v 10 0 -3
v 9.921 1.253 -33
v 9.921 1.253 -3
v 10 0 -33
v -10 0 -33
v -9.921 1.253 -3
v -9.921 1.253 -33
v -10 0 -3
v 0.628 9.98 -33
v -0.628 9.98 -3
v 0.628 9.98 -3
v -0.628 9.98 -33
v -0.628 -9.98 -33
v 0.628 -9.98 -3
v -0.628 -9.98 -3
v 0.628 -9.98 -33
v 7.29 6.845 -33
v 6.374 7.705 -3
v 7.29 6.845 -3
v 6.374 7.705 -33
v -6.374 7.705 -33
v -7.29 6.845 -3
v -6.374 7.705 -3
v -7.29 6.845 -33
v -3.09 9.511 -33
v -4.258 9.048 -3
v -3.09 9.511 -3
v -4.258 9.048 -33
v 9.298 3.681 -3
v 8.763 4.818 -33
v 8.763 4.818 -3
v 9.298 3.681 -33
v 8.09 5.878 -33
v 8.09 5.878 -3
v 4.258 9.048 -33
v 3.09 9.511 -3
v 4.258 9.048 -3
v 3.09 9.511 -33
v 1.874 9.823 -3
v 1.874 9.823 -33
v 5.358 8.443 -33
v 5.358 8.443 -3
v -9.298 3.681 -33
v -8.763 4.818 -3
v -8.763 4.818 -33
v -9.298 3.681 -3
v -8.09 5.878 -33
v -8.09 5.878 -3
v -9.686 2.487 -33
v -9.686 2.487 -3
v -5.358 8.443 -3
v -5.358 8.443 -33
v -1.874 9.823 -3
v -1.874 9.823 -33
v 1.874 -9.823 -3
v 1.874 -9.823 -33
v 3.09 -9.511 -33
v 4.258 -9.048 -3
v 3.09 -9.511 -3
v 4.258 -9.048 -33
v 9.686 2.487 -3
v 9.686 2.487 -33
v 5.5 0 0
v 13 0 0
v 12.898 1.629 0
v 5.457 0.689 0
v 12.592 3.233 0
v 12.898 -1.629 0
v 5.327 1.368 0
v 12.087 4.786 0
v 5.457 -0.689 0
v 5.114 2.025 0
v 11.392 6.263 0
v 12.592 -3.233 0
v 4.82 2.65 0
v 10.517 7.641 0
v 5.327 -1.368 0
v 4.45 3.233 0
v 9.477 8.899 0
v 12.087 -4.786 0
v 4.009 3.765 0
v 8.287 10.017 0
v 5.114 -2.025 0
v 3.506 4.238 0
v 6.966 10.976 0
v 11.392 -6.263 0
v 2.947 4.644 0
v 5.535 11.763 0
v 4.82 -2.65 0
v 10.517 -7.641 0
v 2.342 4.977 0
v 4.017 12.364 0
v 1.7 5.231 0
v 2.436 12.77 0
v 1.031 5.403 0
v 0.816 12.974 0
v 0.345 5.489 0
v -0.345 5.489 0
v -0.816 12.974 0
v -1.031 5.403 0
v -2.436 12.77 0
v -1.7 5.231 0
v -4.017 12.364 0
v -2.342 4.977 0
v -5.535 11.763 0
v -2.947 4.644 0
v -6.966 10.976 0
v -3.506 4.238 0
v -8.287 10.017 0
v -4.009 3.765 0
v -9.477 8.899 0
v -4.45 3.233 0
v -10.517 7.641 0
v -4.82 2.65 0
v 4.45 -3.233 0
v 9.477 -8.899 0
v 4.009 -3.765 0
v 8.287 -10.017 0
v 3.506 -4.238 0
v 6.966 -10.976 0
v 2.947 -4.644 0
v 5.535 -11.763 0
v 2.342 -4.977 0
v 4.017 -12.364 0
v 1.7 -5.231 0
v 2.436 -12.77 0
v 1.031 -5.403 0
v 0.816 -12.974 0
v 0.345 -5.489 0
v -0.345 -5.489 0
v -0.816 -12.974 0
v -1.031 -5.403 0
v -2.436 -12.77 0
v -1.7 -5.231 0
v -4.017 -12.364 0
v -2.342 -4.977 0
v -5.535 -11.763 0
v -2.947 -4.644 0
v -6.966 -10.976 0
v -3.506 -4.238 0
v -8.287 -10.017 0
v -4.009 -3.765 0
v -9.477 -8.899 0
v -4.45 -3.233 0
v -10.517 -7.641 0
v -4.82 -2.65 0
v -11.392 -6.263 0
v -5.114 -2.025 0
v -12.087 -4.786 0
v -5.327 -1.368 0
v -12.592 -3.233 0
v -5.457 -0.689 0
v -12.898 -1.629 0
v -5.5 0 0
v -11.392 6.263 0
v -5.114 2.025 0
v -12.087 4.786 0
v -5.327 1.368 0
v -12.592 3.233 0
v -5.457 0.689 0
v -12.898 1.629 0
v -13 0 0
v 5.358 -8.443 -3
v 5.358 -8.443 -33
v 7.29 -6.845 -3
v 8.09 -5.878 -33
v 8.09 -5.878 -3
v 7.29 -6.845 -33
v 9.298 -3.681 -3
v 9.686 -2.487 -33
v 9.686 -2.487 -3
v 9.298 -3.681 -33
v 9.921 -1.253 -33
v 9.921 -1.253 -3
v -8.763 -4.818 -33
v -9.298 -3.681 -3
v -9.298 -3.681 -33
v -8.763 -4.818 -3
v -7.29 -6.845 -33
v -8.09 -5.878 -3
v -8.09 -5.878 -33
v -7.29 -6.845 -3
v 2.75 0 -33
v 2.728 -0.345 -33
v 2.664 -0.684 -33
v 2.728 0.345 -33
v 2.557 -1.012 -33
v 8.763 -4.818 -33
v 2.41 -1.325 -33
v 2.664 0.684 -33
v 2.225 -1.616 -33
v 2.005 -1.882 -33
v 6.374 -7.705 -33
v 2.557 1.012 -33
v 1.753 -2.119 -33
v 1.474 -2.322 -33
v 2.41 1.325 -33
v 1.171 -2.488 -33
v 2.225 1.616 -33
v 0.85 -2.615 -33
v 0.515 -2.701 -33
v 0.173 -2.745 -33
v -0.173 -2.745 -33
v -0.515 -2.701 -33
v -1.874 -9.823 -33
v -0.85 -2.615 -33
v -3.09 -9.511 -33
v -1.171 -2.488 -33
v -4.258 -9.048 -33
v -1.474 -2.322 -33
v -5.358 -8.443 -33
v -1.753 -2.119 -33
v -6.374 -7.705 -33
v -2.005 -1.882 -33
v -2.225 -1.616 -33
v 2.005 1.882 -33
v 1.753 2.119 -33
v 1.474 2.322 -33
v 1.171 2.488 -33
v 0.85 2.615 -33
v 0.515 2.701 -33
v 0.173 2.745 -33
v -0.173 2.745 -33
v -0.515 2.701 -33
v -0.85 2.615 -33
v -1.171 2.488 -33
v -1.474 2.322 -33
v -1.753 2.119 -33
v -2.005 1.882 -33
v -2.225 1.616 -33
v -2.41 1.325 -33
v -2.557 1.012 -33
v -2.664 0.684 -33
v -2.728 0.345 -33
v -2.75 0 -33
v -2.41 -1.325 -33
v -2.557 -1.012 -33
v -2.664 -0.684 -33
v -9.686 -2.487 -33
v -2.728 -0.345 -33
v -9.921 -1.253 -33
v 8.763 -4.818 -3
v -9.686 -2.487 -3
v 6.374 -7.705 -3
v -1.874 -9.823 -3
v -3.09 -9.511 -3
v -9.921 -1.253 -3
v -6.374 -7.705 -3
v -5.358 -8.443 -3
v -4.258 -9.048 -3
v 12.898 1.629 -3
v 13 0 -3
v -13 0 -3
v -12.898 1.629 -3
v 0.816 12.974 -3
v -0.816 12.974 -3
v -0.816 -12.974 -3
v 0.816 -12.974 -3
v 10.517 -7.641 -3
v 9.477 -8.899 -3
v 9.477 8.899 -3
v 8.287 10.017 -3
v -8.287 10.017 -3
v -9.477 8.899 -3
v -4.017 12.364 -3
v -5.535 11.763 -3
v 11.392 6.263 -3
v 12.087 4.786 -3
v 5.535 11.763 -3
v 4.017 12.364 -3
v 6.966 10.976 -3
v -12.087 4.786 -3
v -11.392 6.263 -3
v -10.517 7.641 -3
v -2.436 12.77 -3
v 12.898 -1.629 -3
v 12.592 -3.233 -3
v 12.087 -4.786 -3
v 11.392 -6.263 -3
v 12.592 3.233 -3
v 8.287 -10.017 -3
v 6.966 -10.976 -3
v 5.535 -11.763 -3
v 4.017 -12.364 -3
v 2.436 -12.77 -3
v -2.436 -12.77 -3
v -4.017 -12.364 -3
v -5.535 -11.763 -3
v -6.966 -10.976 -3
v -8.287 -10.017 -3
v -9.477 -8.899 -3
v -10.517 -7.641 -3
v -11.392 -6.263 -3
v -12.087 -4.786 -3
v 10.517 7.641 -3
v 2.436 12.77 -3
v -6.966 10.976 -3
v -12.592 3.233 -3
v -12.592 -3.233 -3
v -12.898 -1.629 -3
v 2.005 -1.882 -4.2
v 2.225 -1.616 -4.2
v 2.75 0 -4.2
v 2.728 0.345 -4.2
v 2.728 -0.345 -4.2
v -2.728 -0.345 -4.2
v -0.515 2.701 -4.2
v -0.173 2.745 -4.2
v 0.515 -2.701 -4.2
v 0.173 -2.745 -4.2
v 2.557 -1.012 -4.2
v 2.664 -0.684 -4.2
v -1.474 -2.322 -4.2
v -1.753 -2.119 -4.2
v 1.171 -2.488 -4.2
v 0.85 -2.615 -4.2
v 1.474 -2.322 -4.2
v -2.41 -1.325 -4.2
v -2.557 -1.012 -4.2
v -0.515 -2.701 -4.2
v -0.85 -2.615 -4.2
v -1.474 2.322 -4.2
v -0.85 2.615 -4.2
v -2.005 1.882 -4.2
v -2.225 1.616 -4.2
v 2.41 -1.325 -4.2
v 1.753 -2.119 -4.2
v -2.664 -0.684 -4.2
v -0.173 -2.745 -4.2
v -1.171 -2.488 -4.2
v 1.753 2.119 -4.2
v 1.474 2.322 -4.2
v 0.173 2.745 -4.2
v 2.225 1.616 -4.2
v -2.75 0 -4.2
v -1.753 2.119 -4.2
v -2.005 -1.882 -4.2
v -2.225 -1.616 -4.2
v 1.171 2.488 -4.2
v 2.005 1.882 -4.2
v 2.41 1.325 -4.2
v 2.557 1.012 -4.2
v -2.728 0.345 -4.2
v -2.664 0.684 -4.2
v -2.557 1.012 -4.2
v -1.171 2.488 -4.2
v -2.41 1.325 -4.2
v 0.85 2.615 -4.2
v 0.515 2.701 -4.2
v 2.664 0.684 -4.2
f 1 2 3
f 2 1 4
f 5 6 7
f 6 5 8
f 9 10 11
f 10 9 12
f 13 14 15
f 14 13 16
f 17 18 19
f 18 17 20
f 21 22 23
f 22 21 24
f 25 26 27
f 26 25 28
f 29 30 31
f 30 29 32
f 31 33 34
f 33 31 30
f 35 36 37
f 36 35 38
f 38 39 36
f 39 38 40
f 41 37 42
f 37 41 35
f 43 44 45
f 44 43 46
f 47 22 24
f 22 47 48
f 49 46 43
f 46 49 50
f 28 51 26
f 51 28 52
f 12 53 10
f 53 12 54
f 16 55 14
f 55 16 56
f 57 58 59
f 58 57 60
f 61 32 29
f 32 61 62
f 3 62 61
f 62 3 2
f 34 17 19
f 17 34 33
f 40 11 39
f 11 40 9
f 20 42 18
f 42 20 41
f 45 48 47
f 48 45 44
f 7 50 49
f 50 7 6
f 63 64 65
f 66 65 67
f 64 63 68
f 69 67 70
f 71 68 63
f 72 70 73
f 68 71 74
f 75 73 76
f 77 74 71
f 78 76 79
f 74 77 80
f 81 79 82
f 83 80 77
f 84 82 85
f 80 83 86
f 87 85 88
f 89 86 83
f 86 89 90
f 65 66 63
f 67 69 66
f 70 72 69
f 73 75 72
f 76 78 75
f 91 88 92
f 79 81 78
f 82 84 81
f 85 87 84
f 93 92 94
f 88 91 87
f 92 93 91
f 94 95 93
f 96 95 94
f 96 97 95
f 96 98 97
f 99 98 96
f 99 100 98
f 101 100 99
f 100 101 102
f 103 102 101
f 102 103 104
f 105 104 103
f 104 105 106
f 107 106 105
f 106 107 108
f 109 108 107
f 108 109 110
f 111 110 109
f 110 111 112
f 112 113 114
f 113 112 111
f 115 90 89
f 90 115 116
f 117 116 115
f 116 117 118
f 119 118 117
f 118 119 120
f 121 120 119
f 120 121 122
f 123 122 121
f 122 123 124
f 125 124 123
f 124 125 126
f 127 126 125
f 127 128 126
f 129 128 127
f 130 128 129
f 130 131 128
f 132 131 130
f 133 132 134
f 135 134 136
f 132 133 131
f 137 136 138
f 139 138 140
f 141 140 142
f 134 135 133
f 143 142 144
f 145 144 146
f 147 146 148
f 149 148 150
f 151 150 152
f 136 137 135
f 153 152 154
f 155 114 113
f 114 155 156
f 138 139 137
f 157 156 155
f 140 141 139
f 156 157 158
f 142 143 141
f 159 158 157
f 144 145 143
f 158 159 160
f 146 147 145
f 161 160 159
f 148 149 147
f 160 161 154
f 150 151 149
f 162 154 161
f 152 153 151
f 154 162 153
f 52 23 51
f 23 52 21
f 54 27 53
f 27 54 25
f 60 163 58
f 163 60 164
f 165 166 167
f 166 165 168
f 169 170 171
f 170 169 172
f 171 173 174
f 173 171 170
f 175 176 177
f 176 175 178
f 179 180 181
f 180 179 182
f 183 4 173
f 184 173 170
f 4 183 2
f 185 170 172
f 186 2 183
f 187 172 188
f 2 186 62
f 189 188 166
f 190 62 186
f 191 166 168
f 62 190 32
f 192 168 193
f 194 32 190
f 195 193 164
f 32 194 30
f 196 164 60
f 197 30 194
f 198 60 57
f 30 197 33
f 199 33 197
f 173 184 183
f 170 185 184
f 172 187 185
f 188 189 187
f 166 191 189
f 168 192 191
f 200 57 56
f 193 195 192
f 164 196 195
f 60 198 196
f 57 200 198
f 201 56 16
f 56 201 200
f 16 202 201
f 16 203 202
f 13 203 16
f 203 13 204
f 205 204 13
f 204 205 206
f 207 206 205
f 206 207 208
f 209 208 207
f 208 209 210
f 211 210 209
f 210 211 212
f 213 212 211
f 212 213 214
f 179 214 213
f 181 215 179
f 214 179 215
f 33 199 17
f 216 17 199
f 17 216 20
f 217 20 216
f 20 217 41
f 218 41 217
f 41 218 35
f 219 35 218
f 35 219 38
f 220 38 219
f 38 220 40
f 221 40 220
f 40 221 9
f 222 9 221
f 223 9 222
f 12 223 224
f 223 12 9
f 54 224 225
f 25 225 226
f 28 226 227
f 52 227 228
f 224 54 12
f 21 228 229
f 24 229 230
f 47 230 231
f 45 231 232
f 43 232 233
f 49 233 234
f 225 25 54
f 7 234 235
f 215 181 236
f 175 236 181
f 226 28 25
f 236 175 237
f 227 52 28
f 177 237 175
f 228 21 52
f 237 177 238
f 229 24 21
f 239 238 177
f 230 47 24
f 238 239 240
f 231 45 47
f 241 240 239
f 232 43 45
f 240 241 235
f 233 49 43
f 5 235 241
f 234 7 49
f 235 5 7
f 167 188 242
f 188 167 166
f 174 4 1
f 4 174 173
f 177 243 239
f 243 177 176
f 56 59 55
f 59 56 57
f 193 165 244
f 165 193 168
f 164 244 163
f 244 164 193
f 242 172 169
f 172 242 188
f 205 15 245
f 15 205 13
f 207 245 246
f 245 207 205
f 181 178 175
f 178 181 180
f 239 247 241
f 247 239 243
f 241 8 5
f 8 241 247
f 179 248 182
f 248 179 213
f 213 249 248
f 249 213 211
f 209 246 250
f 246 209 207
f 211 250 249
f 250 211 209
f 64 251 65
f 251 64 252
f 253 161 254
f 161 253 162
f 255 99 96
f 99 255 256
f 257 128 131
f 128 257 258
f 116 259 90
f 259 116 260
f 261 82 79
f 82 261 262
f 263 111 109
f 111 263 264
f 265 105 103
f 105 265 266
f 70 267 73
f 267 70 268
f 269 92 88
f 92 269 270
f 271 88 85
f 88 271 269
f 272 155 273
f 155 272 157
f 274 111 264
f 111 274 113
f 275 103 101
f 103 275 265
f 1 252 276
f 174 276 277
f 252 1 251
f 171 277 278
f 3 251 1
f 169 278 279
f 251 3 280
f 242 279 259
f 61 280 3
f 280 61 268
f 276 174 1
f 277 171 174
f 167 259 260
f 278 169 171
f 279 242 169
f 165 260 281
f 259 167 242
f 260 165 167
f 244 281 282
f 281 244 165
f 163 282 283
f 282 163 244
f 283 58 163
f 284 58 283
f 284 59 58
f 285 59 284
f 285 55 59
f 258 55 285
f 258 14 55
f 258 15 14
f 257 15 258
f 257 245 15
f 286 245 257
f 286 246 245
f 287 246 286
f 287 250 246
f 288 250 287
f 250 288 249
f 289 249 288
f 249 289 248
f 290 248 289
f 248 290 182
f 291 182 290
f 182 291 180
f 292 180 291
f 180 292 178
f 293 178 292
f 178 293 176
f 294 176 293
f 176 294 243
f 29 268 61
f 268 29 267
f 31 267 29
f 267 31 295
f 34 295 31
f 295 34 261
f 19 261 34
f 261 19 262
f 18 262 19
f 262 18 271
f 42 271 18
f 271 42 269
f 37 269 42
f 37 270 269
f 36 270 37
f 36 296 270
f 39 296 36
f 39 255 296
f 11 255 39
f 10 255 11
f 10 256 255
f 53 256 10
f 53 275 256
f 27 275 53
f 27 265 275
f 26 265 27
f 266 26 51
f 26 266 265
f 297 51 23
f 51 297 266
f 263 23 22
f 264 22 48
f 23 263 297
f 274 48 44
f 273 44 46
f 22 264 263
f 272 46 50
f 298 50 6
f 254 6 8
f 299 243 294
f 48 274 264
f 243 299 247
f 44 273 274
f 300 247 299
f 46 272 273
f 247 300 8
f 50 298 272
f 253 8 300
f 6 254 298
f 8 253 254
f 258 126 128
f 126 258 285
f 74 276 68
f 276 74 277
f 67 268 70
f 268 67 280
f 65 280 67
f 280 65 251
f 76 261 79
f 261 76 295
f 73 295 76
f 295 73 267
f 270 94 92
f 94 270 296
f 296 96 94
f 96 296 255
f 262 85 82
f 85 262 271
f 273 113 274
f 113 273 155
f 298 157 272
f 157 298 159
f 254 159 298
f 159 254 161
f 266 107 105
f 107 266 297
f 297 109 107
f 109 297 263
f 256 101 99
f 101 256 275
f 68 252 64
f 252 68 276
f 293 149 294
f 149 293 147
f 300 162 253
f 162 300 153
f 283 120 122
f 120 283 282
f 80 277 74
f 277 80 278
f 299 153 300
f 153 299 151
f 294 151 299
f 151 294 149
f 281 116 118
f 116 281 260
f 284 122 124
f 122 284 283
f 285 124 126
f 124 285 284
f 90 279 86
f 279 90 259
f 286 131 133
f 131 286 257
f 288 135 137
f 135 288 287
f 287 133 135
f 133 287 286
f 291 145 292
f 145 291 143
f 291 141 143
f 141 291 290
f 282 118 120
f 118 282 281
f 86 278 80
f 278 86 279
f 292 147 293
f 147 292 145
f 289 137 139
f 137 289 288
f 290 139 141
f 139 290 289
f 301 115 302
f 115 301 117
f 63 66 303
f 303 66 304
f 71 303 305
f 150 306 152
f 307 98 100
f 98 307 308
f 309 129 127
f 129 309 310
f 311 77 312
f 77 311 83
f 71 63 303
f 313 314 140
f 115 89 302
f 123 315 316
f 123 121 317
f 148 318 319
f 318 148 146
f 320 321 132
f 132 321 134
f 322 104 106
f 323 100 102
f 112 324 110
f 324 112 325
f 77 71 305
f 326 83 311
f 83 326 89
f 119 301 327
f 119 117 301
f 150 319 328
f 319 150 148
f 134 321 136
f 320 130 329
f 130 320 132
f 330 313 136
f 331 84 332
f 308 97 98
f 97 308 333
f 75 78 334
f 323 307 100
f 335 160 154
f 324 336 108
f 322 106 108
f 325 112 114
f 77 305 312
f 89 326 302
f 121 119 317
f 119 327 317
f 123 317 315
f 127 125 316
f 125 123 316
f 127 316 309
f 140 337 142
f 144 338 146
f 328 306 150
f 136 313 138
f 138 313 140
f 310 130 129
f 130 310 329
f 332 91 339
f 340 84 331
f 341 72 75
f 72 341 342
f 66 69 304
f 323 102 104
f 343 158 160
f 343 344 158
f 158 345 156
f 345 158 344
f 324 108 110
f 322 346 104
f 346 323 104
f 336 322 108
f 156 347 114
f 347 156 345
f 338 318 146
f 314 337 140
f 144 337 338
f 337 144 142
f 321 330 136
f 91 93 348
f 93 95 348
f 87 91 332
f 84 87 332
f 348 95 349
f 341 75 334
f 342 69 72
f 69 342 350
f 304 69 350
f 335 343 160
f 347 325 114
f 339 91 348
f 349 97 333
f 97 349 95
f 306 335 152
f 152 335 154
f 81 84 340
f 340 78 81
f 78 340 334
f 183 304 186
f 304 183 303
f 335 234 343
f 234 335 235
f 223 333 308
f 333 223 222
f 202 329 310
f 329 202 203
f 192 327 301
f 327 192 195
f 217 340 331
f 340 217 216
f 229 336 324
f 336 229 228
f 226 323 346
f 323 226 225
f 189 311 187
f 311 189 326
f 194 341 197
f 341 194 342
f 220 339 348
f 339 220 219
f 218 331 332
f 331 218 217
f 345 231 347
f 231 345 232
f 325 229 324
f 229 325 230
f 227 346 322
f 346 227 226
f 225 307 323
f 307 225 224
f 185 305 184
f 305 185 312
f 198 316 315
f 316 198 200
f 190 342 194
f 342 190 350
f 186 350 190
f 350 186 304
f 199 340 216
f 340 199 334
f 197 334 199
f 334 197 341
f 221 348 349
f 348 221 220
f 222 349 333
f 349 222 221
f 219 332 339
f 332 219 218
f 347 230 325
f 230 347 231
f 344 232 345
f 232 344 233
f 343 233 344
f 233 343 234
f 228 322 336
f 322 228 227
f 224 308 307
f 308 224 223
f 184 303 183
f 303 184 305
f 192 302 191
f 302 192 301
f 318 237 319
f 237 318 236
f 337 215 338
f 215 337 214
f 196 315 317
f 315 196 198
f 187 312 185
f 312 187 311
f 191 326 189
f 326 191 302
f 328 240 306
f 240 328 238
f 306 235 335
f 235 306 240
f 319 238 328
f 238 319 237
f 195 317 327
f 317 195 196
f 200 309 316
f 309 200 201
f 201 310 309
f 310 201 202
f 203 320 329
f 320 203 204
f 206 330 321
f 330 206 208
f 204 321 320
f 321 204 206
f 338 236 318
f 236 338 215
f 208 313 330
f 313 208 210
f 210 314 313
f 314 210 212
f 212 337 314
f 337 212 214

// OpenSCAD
$fn = 50;


difference() {
	union() {
		translate(v = [0, 0, -33.0000000000]) {
			cylinder(h = 33, r = 10.0000000000);
		}
		translate(v = [0, 0, -3.0000000000]) {
			cylinder(h = 3, r = 13.0000000000);
		}
	}
	union() {
		translate(v = [0, 0, 0]) {
			rotate(a = [0, 0, 0]) {
				difference() {
					union() {
						#translate(v = [0, 0, -33.0000000000]) {
							cylinder(h = 33, r = 2.2500000000);
						}
						#translate(v = [0, 0, -4.2000000000]) {
							cylinder(h = 4.2000000000, r = 10.0000000000, r1 = 2.7500000000, r2 = 5.5000000000);
						}
						#translate(v = [0, 0, -33.0000000000]) {
							cylinder(h = 33, r = 2.7500000000);
						}
						#translate(v = [0, 0, -33.0000000000]) {
							cylinder(h = 33, r = 2.2500000000);
						}
					}
					union();
				}
			}
		}
	}
}
